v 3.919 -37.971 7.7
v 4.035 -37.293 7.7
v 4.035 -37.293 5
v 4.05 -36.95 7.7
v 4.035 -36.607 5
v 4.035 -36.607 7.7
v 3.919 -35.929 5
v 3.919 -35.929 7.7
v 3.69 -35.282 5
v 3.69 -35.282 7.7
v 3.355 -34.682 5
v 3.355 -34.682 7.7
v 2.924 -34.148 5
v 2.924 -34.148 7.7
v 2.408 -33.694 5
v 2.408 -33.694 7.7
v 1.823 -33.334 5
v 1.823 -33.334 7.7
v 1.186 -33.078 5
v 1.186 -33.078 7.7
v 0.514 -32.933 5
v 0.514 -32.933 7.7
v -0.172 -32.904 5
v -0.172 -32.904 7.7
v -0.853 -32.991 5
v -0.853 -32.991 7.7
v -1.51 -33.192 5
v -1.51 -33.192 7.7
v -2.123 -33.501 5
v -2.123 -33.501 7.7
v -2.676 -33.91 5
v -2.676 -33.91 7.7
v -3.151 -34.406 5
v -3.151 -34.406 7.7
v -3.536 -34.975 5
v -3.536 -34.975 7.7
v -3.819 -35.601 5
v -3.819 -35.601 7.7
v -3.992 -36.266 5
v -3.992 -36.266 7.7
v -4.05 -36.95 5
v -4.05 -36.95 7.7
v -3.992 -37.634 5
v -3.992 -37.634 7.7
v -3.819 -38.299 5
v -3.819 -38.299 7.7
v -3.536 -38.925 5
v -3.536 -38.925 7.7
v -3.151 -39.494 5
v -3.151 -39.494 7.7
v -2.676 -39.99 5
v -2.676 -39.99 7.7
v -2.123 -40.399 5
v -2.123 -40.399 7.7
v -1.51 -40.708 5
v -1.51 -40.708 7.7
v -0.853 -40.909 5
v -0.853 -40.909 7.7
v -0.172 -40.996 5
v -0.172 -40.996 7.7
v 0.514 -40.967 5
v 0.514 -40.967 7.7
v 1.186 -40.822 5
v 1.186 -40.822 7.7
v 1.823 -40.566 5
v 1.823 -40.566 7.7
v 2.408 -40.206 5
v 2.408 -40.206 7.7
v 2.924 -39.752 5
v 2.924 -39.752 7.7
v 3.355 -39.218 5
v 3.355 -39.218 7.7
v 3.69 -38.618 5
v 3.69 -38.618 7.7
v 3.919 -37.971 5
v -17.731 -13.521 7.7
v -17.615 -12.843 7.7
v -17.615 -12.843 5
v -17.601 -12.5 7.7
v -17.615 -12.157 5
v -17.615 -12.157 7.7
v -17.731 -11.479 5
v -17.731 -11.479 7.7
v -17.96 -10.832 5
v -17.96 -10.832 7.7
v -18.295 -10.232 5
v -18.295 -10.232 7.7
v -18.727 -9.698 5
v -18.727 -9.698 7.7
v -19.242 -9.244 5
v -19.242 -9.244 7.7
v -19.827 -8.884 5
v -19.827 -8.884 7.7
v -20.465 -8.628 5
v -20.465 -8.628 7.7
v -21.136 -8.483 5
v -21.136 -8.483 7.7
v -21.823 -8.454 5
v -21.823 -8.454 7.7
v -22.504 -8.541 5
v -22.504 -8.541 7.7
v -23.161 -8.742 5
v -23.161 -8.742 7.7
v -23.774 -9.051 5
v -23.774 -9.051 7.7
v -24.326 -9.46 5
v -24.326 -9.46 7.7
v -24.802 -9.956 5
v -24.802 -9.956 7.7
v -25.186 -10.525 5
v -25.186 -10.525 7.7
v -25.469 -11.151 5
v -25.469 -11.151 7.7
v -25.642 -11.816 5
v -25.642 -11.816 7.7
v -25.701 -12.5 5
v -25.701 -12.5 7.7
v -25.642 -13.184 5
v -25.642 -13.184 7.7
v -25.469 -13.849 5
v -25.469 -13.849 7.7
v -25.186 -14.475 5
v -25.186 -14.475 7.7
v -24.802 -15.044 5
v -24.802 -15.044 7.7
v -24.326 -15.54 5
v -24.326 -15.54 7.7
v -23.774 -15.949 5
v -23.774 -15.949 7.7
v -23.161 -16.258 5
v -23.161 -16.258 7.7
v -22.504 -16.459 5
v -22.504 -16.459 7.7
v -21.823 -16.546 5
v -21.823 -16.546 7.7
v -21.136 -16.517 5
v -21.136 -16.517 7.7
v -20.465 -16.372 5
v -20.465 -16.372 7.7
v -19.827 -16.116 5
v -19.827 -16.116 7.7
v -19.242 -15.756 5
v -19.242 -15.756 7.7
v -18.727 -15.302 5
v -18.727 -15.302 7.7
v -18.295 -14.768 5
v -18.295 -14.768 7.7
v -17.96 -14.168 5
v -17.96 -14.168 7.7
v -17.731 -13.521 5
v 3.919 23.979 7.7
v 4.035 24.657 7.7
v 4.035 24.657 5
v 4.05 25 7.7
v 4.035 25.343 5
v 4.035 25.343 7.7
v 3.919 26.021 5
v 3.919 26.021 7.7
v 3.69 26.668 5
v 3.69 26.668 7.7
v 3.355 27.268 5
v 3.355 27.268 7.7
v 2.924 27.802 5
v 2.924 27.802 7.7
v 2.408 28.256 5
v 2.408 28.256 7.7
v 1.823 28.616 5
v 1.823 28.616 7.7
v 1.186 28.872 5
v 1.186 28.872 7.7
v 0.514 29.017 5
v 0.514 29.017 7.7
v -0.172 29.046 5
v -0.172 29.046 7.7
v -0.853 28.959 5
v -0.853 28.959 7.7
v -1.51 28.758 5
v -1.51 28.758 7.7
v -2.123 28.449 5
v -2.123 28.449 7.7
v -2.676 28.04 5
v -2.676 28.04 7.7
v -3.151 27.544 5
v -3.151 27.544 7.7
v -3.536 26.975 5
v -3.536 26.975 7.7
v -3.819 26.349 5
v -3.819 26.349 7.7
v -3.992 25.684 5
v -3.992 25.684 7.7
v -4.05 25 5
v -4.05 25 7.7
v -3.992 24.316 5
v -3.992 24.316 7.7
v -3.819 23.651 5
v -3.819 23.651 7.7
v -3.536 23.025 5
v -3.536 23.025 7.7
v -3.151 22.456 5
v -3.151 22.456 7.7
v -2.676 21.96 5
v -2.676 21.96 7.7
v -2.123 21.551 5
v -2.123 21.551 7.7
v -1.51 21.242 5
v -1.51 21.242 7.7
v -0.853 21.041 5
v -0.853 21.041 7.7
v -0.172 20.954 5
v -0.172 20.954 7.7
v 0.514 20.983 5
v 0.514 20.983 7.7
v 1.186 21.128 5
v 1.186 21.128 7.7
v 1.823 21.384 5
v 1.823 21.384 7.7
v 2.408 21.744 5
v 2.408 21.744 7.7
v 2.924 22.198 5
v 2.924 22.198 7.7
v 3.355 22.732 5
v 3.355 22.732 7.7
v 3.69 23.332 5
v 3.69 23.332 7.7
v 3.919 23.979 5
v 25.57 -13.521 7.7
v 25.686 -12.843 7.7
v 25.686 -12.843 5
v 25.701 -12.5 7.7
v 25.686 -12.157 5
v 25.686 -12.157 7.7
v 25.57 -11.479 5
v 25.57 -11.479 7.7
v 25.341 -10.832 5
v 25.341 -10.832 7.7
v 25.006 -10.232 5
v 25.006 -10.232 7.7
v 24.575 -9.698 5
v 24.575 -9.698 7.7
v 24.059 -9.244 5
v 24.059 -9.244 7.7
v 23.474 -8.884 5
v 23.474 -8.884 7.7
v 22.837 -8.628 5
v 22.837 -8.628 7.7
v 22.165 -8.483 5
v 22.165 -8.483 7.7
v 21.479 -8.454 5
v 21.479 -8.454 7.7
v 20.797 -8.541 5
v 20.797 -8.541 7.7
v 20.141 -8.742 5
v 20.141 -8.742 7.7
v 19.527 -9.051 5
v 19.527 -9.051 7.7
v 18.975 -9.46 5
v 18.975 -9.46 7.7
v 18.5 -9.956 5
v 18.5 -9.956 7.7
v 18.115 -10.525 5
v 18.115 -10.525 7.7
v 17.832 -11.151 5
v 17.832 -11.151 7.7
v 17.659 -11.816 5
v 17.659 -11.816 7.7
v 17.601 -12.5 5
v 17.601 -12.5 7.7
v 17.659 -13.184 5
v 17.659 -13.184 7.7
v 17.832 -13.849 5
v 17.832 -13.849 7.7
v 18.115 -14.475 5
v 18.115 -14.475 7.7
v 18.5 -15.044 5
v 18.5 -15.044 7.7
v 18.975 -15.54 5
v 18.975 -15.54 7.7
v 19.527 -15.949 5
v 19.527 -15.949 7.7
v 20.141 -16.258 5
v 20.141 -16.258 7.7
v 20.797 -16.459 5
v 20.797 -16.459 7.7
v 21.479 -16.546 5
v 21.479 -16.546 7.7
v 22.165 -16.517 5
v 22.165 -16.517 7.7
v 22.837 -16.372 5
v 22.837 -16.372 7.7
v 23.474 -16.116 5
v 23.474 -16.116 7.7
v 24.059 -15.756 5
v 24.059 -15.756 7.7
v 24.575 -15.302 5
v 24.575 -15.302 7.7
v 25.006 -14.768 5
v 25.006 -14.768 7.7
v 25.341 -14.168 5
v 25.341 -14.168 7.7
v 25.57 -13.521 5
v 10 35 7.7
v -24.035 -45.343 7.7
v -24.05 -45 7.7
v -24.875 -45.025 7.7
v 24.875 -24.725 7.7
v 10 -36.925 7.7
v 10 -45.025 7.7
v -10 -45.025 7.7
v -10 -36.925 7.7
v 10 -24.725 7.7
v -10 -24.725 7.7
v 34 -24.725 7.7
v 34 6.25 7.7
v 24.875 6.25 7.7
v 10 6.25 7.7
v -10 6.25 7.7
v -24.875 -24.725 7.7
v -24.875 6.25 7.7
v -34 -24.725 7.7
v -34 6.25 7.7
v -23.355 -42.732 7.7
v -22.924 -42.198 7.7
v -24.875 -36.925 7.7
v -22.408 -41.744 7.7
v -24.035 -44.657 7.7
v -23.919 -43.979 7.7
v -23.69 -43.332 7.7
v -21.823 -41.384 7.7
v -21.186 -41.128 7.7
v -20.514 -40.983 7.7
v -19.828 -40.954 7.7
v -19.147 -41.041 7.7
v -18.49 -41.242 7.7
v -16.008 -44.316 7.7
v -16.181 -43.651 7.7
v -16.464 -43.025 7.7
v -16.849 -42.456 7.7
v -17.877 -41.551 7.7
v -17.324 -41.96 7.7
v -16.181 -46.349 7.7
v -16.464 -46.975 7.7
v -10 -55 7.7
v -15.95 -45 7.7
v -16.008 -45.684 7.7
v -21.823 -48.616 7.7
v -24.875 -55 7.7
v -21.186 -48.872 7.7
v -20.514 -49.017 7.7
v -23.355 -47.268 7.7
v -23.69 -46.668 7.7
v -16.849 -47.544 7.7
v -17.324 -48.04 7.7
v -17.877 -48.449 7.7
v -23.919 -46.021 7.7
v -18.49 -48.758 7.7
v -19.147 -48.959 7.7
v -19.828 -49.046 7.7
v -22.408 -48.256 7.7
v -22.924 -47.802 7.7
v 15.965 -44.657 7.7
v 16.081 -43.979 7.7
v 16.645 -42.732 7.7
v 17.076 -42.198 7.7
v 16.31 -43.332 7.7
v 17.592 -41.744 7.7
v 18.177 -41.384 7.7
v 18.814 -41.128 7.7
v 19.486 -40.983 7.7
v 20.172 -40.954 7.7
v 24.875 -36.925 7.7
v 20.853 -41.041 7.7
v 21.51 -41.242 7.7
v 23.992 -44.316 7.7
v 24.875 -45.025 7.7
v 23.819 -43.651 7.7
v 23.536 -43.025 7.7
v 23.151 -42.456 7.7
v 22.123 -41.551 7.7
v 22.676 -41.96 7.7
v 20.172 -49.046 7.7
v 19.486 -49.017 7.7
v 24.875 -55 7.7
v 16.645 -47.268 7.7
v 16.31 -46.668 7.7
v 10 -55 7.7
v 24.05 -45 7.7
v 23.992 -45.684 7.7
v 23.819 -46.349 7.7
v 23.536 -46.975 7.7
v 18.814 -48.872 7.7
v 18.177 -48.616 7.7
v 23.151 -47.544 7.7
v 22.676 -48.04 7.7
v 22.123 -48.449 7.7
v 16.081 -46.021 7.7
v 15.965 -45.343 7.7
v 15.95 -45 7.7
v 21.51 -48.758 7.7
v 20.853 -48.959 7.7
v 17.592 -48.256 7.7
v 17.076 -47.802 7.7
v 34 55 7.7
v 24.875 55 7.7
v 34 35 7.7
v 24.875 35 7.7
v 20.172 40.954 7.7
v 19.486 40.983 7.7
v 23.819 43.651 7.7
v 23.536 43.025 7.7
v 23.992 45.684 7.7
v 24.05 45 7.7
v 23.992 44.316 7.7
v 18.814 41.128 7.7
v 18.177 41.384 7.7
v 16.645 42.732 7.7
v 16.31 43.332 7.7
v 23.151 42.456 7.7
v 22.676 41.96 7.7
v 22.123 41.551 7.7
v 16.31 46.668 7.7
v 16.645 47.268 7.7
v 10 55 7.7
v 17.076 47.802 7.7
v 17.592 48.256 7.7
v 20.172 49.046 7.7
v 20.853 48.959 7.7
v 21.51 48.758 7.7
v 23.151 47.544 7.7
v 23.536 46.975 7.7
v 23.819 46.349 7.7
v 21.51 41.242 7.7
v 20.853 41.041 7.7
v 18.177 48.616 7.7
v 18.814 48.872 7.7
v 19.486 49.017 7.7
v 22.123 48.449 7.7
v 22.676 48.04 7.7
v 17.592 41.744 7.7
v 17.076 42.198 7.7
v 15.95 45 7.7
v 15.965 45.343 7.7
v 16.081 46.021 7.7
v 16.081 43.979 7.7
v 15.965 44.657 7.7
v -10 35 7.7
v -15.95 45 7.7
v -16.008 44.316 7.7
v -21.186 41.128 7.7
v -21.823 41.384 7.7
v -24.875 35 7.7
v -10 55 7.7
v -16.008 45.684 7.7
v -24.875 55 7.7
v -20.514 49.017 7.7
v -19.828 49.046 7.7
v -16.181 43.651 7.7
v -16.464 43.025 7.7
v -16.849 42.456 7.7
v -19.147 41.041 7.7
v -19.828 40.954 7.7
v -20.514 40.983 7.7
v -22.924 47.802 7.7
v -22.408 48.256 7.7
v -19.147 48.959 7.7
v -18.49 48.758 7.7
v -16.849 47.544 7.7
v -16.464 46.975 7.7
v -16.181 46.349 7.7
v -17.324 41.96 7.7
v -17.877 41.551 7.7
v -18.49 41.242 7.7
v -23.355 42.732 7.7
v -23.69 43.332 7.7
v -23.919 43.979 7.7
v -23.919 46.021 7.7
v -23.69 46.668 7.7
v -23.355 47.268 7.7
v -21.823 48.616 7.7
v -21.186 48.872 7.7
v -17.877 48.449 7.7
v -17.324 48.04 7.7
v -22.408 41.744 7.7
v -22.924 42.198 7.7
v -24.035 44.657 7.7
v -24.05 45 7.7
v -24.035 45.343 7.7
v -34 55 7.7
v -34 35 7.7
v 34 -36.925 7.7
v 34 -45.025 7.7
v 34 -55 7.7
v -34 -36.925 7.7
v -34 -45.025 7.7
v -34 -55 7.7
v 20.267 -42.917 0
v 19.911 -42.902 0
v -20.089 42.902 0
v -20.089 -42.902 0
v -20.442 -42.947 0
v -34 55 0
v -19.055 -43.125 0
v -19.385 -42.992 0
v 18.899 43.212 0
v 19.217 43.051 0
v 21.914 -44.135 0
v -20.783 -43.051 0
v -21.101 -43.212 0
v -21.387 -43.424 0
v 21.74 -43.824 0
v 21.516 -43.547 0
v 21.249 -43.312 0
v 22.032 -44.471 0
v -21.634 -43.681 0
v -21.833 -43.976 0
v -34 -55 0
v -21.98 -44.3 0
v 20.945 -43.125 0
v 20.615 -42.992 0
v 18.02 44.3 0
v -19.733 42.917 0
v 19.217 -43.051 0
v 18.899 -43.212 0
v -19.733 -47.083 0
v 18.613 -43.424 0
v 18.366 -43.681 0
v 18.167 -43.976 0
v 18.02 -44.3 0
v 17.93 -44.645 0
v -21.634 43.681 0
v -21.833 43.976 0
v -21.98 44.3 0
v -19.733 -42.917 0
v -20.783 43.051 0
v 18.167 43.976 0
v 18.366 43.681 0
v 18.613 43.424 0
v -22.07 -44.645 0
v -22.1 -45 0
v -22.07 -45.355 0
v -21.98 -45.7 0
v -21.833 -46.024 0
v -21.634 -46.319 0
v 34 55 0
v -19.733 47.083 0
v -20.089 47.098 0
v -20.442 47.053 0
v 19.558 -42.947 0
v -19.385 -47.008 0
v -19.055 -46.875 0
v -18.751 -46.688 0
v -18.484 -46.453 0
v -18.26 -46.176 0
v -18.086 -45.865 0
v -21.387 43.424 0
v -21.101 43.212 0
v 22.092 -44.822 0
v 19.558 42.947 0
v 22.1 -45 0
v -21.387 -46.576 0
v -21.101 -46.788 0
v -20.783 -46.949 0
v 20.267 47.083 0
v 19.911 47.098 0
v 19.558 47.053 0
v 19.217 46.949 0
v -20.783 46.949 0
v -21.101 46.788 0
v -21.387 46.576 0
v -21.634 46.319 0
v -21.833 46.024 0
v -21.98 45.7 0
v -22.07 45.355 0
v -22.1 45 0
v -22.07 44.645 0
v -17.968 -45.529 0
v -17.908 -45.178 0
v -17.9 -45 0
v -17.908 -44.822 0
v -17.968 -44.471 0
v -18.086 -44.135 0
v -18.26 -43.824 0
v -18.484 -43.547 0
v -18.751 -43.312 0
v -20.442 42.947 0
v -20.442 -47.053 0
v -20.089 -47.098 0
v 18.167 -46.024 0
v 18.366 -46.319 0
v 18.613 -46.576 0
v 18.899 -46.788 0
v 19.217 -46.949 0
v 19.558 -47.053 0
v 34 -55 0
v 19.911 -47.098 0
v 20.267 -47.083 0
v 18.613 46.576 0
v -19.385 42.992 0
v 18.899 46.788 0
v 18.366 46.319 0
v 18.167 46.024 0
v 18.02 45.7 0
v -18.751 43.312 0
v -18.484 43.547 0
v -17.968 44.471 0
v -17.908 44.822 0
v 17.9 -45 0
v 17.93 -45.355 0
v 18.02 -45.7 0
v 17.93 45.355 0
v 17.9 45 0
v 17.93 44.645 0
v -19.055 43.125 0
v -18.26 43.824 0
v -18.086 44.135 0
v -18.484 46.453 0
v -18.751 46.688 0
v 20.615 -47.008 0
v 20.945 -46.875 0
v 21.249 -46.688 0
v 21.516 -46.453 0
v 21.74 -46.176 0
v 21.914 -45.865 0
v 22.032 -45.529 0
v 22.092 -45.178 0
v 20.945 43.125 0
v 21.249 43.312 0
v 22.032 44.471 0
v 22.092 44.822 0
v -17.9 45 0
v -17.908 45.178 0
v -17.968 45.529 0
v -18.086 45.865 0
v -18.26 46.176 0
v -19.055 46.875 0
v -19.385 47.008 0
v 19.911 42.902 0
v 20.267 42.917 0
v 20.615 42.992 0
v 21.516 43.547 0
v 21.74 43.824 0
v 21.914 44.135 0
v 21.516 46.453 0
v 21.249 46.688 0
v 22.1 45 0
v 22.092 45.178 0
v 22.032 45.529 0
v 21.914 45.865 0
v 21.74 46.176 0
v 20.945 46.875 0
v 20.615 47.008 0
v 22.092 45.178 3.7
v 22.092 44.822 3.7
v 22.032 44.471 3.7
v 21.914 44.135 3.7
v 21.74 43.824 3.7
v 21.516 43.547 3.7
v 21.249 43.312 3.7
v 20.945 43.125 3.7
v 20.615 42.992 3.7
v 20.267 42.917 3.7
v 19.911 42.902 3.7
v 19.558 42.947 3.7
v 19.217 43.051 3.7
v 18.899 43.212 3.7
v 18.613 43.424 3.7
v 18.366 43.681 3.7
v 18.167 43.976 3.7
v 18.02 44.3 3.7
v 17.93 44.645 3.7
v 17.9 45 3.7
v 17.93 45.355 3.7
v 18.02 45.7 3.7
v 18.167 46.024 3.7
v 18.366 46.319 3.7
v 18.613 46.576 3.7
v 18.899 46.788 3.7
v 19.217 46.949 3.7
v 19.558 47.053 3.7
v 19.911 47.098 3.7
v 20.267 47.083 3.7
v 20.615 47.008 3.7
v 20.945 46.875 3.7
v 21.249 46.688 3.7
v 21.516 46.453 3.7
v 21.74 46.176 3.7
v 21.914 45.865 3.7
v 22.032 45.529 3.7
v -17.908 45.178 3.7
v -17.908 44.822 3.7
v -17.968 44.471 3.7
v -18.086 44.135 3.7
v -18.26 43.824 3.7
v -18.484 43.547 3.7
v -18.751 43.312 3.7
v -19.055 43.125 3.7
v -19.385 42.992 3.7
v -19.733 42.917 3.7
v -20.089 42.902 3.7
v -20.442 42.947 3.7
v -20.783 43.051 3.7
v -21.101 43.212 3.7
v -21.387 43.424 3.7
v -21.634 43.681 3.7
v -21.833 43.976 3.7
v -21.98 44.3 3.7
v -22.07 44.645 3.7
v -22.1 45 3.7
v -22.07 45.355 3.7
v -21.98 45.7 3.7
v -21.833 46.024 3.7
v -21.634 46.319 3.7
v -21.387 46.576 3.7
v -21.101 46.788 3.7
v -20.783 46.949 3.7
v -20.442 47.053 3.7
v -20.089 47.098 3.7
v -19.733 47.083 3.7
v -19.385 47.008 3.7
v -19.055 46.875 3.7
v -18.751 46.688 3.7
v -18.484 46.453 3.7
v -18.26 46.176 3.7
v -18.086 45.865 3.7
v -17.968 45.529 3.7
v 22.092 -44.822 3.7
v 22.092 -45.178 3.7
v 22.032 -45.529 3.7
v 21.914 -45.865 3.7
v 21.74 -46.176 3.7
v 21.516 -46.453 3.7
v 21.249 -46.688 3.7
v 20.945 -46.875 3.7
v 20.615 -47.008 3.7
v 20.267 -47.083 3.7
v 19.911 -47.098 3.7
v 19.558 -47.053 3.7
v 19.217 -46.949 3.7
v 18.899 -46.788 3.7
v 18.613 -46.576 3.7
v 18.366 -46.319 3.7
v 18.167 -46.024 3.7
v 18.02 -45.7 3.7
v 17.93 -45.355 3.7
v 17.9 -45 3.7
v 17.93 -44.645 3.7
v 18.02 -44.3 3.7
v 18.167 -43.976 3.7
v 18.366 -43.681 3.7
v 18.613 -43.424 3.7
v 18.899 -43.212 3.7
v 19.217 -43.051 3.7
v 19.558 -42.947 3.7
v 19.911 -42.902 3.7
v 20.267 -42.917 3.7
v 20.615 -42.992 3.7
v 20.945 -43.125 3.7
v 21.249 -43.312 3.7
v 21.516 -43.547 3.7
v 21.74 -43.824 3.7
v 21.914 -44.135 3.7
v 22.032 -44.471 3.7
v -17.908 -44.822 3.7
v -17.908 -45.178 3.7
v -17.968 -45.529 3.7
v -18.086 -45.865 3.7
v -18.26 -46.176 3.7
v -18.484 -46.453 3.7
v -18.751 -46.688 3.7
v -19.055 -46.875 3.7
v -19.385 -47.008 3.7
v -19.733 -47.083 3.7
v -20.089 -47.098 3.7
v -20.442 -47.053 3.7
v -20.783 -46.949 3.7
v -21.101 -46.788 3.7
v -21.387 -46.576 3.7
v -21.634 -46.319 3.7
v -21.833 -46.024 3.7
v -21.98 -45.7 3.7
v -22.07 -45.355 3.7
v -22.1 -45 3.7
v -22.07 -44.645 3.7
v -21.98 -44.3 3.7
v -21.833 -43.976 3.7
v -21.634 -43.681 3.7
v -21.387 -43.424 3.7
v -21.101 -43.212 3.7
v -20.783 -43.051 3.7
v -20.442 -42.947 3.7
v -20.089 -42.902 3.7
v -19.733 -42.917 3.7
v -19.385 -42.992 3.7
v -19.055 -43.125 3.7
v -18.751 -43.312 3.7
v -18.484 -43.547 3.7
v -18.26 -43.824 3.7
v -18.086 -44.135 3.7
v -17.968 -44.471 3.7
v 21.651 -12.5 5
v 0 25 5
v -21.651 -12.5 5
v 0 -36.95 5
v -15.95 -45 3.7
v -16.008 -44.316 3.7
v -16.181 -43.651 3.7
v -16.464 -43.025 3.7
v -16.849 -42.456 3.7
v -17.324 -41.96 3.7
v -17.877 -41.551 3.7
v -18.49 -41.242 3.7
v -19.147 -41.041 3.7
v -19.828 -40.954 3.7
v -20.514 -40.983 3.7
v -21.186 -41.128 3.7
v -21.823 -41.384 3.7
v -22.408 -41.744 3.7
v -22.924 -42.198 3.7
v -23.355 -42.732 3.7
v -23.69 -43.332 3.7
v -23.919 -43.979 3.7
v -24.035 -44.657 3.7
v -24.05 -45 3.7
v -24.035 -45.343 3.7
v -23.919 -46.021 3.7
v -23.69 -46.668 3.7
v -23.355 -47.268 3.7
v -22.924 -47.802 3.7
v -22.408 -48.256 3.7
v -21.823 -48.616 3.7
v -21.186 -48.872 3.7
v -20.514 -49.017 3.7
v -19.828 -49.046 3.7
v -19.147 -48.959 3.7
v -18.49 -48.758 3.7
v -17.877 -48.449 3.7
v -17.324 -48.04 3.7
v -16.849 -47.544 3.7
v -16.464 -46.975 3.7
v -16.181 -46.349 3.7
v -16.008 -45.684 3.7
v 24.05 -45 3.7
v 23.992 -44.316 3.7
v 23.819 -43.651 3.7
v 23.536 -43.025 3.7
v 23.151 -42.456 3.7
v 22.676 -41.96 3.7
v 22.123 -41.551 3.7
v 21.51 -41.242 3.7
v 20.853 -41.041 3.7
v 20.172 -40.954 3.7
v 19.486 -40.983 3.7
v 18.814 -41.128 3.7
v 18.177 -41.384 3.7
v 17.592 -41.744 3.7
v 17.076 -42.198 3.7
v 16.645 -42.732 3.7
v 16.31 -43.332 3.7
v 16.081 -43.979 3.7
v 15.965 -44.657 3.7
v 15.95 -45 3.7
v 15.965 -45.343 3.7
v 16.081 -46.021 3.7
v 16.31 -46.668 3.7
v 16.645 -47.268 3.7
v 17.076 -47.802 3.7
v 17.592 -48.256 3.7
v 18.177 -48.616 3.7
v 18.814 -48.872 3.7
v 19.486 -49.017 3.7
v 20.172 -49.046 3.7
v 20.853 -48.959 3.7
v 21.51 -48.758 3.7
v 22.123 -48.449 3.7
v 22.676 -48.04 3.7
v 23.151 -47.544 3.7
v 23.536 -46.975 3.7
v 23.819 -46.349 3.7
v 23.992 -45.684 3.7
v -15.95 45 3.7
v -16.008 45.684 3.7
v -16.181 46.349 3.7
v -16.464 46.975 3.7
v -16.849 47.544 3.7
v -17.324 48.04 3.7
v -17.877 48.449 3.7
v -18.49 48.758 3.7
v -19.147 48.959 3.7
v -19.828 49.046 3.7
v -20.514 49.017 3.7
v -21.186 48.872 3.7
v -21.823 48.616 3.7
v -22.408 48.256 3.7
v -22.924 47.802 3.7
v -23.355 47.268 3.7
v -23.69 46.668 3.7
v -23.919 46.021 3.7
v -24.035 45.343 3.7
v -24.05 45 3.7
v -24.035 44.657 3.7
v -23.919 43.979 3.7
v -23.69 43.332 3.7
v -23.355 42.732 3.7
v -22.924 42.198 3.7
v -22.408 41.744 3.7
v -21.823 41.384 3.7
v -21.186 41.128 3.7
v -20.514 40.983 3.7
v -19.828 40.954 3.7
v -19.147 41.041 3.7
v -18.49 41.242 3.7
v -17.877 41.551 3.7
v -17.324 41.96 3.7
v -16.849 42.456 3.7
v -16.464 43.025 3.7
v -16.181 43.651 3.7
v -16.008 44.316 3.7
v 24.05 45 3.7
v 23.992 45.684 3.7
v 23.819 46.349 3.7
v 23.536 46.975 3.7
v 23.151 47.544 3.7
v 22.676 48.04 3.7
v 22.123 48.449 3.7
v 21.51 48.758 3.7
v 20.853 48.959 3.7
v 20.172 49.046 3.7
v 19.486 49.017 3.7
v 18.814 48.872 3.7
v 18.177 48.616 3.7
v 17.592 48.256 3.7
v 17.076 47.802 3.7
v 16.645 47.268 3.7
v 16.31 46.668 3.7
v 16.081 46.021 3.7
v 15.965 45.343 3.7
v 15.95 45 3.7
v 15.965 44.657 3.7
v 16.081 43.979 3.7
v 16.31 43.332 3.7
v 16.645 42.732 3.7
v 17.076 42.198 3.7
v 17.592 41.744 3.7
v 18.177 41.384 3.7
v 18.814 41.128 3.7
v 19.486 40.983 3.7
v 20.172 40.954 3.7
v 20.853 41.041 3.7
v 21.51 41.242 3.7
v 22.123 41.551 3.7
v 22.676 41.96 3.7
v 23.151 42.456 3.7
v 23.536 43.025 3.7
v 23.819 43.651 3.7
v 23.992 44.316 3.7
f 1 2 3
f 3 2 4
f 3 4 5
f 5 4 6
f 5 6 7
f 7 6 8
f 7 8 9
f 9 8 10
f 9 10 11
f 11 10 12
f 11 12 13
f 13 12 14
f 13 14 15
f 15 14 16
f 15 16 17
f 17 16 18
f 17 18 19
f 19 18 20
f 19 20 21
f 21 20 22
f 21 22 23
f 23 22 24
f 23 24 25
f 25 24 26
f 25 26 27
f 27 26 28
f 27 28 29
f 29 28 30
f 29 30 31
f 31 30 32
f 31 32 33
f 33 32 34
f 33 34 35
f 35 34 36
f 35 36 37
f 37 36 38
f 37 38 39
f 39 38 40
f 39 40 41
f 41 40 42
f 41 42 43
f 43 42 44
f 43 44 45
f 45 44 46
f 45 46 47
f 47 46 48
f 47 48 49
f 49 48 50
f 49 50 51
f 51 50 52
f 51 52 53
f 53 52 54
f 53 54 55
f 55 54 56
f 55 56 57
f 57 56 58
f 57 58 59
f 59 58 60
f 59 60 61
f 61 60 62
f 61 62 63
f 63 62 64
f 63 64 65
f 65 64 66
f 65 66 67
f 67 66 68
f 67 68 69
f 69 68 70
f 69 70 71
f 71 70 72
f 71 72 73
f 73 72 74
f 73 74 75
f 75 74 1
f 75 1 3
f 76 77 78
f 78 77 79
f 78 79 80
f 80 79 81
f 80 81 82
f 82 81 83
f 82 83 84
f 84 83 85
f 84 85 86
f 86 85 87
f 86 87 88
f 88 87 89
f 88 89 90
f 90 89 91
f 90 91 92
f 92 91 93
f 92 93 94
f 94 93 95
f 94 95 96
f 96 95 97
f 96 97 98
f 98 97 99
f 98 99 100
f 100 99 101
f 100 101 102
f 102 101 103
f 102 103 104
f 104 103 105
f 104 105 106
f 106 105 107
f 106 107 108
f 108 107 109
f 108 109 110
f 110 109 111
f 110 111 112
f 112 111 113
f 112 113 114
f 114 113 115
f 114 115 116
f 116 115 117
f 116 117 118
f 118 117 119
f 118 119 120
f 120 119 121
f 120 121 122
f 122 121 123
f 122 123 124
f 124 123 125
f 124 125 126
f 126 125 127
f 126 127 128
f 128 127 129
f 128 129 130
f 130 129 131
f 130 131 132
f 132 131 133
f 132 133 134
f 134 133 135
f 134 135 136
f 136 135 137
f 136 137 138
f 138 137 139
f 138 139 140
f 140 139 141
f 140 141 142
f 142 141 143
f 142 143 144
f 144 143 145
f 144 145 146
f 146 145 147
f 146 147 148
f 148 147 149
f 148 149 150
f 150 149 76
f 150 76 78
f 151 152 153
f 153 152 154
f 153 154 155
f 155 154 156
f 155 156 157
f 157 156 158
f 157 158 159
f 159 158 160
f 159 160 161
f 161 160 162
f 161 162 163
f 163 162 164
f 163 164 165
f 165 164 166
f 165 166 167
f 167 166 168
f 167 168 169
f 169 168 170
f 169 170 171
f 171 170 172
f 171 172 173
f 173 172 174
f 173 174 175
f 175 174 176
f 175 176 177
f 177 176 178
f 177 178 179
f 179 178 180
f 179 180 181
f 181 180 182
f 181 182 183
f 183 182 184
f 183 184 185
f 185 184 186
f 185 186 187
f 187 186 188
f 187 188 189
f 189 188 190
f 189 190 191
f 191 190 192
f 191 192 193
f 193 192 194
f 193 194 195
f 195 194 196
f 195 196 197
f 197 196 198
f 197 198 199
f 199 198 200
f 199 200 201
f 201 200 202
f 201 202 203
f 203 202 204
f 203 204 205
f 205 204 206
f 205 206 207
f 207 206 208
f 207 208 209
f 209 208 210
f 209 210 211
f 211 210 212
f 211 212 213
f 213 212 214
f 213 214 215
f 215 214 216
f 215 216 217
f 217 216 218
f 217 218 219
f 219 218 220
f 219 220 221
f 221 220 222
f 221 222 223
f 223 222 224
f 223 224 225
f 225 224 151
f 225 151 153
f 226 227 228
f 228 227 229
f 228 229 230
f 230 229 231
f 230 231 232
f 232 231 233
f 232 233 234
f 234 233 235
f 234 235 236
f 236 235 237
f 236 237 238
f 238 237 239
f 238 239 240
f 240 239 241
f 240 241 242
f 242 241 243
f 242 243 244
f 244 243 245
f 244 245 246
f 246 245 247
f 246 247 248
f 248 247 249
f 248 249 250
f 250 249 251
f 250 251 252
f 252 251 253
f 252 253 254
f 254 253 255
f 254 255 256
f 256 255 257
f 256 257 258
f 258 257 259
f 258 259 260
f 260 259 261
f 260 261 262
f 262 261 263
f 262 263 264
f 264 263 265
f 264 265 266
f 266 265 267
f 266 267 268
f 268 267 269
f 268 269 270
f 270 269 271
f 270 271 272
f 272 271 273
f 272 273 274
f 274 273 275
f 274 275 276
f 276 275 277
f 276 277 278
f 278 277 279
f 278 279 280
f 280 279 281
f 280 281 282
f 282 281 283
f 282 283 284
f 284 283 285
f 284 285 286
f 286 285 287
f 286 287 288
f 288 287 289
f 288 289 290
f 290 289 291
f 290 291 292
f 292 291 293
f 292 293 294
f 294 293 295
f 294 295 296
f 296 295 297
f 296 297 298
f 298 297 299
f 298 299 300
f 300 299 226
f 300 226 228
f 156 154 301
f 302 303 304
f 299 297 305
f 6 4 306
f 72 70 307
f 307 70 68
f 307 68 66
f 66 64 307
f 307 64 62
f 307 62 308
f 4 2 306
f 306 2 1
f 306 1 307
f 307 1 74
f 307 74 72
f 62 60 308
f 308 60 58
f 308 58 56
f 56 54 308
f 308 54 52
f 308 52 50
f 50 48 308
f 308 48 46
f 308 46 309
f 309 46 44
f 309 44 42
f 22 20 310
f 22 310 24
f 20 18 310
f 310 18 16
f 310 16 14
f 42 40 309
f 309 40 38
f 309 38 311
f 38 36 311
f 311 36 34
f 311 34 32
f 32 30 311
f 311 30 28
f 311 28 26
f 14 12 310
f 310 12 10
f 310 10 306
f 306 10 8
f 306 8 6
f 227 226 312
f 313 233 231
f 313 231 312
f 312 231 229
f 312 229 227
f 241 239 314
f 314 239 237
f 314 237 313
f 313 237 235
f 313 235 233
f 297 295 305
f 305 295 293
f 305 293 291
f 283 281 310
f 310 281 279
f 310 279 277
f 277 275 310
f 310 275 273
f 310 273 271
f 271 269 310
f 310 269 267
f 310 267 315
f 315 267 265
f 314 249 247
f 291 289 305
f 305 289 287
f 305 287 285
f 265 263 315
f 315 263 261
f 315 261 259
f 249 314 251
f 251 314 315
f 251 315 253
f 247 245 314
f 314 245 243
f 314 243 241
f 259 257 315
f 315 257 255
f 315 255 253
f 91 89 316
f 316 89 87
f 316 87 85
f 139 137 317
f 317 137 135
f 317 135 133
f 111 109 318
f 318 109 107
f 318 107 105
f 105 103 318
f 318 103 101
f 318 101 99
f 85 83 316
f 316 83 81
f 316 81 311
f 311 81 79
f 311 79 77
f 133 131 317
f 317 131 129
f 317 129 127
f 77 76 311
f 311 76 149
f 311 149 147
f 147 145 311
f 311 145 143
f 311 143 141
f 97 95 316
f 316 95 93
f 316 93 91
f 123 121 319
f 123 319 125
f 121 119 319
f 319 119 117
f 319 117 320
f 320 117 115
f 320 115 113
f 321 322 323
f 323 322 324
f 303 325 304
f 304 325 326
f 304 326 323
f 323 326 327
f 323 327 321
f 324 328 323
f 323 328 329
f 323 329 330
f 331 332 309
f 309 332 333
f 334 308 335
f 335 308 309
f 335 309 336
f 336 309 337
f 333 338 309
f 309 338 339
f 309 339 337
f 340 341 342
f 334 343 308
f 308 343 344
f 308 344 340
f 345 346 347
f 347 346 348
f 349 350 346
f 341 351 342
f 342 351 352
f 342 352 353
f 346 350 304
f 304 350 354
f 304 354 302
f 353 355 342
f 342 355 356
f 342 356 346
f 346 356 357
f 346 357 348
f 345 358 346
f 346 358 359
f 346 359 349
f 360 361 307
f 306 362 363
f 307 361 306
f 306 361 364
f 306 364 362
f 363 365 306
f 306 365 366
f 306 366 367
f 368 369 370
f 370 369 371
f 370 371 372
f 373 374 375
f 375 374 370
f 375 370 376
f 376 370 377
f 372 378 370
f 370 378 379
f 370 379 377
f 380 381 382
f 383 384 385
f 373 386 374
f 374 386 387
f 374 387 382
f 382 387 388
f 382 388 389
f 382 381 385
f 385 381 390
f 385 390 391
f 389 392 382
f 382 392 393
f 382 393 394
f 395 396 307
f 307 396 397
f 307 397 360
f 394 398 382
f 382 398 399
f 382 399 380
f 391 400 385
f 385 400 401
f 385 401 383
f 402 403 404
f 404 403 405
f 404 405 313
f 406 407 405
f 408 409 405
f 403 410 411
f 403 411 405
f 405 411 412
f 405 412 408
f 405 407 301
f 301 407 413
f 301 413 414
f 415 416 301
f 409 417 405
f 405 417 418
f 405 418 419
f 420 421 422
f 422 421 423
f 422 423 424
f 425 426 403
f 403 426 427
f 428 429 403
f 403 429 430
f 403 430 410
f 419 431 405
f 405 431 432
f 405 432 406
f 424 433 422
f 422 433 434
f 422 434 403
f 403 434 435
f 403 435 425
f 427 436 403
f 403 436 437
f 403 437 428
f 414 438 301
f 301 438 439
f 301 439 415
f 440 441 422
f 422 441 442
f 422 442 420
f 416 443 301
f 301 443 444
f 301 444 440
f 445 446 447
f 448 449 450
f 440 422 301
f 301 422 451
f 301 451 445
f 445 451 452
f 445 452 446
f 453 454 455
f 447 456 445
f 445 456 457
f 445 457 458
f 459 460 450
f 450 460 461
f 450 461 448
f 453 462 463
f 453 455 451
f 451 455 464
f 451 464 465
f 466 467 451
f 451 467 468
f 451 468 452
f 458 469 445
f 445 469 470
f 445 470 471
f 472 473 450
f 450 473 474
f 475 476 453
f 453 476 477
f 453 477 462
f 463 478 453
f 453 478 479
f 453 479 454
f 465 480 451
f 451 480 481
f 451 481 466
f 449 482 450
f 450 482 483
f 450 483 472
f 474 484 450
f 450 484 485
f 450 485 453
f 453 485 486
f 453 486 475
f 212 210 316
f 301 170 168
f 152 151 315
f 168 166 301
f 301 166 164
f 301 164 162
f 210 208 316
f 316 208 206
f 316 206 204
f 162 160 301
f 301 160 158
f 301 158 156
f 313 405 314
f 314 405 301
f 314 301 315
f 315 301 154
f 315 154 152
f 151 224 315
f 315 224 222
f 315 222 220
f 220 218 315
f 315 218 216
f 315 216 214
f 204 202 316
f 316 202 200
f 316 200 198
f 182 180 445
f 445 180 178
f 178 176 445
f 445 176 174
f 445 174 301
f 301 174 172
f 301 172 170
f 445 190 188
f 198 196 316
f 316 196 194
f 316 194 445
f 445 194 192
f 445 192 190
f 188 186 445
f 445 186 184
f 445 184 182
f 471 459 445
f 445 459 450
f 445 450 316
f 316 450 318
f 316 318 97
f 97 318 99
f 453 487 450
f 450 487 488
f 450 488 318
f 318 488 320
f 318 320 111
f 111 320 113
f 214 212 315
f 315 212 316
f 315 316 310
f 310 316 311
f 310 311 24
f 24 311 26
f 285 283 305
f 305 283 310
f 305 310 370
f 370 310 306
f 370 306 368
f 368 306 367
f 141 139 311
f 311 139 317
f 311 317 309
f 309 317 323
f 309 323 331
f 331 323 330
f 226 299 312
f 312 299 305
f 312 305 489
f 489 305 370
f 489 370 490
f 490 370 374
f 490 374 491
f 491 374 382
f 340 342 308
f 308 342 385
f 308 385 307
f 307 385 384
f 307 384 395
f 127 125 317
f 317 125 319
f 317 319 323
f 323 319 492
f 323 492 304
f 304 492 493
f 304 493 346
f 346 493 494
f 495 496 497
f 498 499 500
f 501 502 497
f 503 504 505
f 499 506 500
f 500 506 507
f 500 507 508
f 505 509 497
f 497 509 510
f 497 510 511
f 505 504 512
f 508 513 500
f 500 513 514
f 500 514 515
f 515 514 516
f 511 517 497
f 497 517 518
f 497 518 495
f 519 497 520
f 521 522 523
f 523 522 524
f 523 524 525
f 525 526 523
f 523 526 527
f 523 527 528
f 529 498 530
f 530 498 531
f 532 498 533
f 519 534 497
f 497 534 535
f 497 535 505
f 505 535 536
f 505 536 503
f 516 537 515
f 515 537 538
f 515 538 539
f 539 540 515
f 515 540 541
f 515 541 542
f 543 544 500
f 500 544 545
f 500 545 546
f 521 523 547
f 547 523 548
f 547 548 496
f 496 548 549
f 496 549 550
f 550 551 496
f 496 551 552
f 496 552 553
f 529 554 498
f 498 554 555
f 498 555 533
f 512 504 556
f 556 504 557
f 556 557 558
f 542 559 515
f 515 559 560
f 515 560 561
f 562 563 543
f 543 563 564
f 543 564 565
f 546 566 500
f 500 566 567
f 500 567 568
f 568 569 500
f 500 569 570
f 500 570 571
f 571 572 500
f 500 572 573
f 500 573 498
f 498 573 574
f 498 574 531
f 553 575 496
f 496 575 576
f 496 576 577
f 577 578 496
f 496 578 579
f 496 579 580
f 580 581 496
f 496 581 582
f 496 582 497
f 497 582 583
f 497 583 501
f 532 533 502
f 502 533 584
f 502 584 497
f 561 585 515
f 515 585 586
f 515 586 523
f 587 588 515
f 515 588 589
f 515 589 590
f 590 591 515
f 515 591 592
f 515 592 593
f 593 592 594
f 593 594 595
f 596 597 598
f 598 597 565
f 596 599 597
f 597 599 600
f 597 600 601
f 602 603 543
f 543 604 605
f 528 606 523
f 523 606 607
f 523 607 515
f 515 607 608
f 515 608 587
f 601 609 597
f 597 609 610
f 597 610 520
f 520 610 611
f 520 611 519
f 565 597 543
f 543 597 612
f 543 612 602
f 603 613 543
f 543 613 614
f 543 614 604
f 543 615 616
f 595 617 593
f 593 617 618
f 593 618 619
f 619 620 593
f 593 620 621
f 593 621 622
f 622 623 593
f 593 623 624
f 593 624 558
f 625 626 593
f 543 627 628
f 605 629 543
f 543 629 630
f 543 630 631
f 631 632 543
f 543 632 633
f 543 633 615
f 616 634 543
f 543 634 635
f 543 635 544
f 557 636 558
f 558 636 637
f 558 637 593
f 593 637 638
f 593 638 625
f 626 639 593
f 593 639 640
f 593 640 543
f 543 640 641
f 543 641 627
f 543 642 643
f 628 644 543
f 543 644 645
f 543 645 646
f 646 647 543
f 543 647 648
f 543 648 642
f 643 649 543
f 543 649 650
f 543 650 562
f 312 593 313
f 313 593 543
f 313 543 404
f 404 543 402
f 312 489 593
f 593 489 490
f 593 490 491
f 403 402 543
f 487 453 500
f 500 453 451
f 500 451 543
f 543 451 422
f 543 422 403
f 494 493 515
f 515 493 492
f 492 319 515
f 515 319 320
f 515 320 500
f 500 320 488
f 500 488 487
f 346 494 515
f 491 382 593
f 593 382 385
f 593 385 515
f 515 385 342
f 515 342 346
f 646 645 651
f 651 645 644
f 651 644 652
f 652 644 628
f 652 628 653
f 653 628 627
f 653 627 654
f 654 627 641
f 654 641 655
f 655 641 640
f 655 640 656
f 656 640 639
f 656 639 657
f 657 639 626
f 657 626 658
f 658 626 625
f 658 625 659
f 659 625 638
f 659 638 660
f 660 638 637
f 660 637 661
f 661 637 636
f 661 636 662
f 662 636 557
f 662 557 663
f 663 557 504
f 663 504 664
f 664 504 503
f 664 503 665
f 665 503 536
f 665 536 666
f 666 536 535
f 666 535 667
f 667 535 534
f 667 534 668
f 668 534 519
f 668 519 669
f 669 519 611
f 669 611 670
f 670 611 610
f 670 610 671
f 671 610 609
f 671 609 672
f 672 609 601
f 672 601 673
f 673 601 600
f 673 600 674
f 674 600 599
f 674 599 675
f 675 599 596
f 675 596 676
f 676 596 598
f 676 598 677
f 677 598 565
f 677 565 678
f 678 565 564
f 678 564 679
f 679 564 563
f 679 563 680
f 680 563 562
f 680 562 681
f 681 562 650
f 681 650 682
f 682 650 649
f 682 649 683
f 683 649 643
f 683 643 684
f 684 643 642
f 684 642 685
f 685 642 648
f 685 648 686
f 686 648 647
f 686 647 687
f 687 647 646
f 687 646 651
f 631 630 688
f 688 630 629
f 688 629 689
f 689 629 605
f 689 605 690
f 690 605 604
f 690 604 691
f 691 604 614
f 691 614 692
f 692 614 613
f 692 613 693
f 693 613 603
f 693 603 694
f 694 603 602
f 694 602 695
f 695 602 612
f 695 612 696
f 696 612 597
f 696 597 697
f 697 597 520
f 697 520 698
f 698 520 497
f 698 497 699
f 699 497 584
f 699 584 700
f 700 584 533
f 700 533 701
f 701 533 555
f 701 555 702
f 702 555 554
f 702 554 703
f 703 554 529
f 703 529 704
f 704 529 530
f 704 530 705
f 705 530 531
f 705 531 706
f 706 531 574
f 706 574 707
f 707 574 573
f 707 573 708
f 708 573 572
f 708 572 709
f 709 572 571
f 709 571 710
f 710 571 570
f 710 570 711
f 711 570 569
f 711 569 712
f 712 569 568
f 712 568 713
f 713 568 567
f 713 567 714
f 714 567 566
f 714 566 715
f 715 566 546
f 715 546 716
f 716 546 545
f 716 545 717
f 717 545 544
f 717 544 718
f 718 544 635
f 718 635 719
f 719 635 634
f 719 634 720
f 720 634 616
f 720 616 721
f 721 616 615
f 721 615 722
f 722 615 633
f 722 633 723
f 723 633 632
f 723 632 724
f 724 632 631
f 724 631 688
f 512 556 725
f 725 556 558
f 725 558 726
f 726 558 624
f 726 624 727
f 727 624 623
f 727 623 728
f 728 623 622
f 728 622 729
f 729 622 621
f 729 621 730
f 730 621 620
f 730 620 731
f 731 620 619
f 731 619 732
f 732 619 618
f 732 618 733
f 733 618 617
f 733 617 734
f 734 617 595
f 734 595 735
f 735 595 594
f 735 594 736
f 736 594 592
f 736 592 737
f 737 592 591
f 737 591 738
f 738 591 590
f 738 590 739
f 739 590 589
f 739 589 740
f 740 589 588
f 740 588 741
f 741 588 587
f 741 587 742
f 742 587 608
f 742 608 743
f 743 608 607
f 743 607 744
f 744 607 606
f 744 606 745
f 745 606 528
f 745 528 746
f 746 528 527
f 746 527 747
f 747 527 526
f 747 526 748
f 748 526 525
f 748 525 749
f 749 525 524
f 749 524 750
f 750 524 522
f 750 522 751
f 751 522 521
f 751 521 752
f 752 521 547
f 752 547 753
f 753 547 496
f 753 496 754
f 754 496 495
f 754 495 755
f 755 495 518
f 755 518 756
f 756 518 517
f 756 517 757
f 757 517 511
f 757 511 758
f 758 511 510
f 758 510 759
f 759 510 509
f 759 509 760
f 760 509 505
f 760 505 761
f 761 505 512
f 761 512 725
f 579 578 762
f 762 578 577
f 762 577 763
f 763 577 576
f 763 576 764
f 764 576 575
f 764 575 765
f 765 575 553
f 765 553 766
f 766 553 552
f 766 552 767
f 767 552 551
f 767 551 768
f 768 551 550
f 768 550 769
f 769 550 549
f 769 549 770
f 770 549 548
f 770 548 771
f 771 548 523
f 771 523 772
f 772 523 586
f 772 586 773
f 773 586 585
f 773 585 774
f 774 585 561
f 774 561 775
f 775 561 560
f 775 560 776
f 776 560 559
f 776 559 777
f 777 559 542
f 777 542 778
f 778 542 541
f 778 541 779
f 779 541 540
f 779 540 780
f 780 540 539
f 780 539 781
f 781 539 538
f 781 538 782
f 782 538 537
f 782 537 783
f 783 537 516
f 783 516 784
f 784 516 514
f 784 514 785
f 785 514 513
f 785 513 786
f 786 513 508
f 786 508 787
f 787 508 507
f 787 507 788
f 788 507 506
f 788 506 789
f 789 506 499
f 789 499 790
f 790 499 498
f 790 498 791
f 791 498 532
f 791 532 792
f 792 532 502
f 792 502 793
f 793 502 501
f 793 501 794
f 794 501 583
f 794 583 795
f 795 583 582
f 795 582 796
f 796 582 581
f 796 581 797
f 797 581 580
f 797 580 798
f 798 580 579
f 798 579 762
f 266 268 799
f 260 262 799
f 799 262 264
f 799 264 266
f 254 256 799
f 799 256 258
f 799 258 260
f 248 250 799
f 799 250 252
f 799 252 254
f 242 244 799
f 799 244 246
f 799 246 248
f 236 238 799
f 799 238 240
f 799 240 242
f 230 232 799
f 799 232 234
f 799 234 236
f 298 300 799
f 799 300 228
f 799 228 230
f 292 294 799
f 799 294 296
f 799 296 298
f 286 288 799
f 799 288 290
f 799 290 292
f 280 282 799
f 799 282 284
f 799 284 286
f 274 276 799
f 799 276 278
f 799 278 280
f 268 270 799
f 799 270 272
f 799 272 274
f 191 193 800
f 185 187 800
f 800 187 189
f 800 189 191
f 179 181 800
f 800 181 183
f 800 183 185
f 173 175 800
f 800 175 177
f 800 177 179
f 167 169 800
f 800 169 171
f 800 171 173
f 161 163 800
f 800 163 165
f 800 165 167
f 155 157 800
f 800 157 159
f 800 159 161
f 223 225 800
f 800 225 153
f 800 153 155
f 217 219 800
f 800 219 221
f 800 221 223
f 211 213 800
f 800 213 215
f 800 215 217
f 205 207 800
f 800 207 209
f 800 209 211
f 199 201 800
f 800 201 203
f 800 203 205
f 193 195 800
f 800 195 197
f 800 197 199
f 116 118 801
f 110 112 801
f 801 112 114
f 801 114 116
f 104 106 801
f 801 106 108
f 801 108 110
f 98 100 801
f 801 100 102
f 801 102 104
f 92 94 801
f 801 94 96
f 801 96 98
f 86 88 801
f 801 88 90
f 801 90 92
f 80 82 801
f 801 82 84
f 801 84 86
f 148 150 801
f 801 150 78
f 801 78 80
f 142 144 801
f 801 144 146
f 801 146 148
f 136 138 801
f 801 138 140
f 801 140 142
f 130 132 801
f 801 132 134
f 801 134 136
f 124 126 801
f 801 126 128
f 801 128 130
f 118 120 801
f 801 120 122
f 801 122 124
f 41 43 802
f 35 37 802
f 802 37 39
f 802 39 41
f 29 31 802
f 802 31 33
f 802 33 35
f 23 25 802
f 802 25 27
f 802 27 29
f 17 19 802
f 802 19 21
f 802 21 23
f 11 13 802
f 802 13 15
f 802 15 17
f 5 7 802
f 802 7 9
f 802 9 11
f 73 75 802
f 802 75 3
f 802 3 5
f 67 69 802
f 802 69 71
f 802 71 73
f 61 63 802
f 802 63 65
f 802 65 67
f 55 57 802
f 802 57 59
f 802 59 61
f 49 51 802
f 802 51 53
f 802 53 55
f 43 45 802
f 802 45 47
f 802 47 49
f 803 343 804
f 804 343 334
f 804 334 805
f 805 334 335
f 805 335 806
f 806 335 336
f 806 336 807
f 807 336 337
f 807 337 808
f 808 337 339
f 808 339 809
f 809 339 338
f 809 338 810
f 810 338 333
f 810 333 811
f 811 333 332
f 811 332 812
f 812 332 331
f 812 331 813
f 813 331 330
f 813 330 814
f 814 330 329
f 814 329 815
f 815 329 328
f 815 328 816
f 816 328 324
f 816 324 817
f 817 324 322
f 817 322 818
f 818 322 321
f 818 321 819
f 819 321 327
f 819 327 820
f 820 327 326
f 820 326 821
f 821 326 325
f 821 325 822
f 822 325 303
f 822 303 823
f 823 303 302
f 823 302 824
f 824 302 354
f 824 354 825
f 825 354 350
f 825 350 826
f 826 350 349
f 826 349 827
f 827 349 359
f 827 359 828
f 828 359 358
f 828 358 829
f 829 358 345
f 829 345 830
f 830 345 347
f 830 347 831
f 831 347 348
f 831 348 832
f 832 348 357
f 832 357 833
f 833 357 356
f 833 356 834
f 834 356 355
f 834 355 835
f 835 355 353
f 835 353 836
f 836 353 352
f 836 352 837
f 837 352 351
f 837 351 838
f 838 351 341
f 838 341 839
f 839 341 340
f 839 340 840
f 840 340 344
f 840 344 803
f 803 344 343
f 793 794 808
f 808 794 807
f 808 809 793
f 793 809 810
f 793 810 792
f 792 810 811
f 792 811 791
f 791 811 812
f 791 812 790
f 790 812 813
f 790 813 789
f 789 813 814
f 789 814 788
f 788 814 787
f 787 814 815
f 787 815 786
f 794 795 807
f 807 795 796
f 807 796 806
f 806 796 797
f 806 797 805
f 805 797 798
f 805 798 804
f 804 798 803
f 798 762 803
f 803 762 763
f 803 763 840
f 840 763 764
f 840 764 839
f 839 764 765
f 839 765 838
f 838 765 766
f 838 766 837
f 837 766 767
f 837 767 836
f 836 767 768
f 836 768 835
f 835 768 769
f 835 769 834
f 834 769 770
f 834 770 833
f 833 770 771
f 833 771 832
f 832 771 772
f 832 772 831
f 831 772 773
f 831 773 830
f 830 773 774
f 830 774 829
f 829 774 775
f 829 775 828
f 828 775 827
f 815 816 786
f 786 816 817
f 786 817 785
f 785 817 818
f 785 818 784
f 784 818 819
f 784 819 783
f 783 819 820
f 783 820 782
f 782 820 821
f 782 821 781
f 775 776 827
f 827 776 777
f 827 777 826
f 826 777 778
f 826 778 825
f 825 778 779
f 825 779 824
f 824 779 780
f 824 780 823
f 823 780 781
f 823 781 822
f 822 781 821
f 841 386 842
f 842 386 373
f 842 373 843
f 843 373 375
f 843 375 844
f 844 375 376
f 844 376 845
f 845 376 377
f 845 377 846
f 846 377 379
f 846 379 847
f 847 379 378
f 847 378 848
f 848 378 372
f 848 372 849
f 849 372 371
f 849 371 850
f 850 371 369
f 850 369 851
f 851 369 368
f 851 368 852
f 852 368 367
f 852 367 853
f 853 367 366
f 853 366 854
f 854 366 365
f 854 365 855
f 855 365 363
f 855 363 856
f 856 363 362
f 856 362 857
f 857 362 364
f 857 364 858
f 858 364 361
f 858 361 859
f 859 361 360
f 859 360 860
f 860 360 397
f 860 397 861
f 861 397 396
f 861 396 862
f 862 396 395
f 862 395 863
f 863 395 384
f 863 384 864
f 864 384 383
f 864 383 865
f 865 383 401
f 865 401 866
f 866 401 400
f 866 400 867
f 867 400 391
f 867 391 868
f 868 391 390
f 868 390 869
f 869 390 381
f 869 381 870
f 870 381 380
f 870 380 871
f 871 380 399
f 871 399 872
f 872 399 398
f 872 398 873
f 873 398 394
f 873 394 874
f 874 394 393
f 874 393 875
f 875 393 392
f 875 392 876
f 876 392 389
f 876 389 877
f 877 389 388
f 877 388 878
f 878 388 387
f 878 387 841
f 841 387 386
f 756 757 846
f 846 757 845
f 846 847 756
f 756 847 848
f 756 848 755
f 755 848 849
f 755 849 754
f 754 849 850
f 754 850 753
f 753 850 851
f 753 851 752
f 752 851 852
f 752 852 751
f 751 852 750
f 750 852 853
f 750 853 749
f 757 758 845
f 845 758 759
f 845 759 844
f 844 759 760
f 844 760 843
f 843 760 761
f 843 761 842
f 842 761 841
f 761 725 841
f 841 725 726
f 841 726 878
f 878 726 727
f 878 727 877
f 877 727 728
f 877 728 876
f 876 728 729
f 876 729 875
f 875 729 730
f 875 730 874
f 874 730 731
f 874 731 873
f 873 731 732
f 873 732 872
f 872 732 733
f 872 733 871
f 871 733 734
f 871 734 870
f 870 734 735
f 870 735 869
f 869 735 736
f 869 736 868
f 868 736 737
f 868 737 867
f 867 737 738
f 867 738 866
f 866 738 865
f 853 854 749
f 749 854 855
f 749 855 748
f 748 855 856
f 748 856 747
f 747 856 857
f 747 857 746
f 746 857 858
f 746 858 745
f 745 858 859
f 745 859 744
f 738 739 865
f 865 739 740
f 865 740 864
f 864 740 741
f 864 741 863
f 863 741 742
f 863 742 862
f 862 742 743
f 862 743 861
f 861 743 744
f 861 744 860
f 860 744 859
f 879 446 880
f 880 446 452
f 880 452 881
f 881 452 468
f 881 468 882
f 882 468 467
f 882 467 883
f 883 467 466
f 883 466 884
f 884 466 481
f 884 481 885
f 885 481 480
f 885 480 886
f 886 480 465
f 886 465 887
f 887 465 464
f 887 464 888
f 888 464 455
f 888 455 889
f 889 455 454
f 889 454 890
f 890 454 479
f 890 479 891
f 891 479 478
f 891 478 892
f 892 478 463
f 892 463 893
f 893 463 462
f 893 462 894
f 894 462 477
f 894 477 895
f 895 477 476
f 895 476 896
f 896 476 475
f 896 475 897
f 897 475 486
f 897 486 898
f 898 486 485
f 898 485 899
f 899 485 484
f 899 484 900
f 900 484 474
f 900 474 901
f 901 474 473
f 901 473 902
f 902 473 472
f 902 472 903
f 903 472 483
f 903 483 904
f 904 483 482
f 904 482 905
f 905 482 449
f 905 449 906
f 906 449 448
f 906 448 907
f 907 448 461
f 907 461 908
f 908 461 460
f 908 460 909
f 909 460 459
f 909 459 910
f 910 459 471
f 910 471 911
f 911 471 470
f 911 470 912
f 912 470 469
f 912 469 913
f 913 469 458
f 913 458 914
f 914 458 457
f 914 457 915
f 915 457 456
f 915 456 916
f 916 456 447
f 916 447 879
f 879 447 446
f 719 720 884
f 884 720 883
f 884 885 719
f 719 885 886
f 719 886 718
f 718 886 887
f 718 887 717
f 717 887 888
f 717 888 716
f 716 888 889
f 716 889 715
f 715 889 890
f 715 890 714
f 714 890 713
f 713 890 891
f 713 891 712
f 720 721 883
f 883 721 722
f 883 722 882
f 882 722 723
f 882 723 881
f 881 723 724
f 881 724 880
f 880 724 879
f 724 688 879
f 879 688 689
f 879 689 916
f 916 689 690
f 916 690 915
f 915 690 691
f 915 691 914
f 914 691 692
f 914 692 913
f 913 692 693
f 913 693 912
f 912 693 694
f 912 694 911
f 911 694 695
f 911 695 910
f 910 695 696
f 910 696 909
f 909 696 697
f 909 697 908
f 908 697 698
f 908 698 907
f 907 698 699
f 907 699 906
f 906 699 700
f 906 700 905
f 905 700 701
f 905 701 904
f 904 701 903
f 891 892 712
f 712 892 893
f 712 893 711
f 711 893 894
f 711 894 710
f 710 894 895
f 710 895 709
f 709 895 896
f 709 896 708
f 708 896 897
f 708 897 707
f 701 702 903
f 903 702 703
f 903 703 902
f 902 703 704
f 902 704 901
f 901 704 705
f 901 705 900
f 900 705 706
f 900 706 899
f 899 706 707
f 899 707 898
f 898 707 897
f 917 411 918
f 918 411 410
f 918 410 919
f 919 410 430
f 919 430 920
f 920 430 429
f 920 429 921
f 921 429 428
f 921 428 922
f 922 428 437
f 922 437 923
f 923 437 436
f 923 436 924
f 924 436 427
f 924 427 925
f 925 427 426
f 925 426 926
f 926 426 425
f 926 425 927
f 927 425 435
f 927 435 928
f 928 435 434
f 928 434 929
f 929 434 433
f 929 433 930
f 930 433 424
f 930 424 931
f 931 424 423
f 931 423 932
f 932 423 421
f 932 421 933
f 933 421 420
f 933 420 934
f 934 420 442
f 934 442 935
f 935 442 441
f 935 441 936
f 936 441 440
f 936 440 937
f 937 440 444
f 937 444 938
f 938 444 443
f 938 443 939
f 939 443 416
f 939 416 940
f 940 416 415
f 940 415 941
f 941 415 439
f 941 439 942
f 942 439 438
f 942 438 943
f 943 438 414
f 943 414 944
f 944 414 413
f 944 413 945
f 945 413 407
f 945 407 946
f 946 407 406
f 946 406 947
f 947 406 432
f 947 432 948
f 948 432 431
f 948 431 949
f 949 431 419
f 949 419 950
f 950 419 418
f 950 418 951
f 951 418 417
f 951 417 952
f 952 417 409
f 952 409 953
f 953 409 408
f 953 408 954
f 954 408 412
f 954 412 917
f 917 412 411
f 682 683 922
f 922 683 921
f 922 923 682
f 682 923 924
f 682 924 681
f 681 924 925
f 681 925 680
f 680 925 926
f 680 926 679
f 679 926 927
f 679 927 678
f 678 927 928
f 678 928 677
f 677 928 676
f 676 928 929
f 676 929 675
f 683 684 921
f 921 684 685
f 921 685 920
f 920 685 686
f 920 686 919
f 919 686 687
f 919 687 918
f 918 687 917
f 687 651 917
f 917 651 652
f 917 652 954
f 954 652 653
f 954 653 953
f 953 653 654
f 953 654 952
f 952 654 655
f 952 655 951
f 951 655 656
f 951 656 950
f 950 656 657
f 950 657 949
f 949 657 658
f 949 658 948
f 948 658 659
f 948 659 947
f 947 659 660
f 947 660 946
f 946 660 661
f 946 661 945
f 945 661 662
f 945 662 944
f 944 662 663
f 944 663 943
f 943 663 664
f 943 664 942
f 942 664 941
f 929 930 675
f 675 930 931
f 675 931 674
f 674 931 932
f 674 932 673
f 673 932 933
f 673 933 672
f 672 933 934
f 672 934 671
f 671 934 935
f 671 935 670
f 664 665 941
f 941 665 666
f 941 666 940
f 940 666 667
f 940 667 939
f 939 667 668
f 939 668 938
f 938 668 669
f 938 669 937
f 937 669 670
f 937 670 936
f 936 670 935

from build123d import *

# Parameters (mm, degrees)
SKETCH1_W           = 68
SKETCH1_H           = 110
SKETCH1_R           = 2.1
SKETCH1_R_2         = 4.05
BOSS_EXTRUDE1_DEPTH = 7.7
SKETCH2_R           = 6.304633146
SKETCH2_R_2         = 7.334333348
SKETCH2_R_3         = 8.114040952
SKETCH2_R_4         = 11.073656437
BOSS_EXTRUDE2_DEPTH = 5
SKETCH3_R           = 4.05
CUT_EXTRUDE1_DEPTH  = 4


with BuildPart() as part:
    # Sketch1 → Boss-Extrude1 (new body)
    with BuildSketch(Plane.XY):
        Rectangle(SKETCH1_W, SKETCH1_H)
        with Locations((20, 45)):
            Circle(SKETCH1_R, mode=Mode.SUBTRACT)
        with Locations((-20, 45)):
            Circle(SKETCH1_R, mode=Mode.SUBTRACT)
        with Locations((20, -45)):
            Circle(SKETCH1_R, mode=Mode.SUBTRACT)
        with Locations((-20, -45)):
            Circle(SKETCH1_R, mode=Mode.SUBTRACT)
        with Locations((21.650635095, -12.5)):
            Circle(SKETCH1_R_2, mode=Mode.SUBTRACT)
        with Locations((0, 25)):
            Circle(SKETCH1_R_2, mode=Mode.SUBTRACT)
        with Locations((-21.650635095, -12.5)):
            Circle(SKETCH1_R_2, mode=Mode.SUBTRACT)
        with Locations((0, -36.95)):
            Circle(SKETCH1_R_2, mode=Mode.SUBTRACT)
    extrude(amount=BOSS_EXTRUDE1_DEPTH)

    # Sketch2 → Boss-Extrude2 (add)
    with BuildSketch(Plane(origin=(0, 0, 0), x_dir=(-1, 0, 0), z_dir=(0, 0, -1))):
        with Locations((-21.650635095, -12.5)):
            Circle(SKETCH2_R)
        with Locations((0, 25)):
            Circle(SKETCH2_R_2)
        with Locations((21.650635095, -12.5)):
            Circle(SKETCH2_R_3)
        with Locations((0, -36.95)):
            Circle(SKETCH2_R_4)
    extrude(amount=-BOSS_EXTRUDE2_DEPTH)

    # Sketch3 → Cut-Extrude1 (cut)
    with BuildSketch(Plane(origin=(0, 0, 7.7), x_dir=(-1, 0, 0), z_dir=(0, 0, -1))):
        with Locations((-20, 45)):
            Circle(SKETCH3_R)
        with Locations((20, 45)):
            Circle(SKETCH3_R)
        with Locations((-20, -45)):
            Circle(SKETCH3_R)
        with Locations((20, -45)):
            Circle(SKETCH3_R)
    extrude(amount=CUT_EXTRUDE1_DEPTH, mode=Mode.SUBTRACT)


solid = part.part
